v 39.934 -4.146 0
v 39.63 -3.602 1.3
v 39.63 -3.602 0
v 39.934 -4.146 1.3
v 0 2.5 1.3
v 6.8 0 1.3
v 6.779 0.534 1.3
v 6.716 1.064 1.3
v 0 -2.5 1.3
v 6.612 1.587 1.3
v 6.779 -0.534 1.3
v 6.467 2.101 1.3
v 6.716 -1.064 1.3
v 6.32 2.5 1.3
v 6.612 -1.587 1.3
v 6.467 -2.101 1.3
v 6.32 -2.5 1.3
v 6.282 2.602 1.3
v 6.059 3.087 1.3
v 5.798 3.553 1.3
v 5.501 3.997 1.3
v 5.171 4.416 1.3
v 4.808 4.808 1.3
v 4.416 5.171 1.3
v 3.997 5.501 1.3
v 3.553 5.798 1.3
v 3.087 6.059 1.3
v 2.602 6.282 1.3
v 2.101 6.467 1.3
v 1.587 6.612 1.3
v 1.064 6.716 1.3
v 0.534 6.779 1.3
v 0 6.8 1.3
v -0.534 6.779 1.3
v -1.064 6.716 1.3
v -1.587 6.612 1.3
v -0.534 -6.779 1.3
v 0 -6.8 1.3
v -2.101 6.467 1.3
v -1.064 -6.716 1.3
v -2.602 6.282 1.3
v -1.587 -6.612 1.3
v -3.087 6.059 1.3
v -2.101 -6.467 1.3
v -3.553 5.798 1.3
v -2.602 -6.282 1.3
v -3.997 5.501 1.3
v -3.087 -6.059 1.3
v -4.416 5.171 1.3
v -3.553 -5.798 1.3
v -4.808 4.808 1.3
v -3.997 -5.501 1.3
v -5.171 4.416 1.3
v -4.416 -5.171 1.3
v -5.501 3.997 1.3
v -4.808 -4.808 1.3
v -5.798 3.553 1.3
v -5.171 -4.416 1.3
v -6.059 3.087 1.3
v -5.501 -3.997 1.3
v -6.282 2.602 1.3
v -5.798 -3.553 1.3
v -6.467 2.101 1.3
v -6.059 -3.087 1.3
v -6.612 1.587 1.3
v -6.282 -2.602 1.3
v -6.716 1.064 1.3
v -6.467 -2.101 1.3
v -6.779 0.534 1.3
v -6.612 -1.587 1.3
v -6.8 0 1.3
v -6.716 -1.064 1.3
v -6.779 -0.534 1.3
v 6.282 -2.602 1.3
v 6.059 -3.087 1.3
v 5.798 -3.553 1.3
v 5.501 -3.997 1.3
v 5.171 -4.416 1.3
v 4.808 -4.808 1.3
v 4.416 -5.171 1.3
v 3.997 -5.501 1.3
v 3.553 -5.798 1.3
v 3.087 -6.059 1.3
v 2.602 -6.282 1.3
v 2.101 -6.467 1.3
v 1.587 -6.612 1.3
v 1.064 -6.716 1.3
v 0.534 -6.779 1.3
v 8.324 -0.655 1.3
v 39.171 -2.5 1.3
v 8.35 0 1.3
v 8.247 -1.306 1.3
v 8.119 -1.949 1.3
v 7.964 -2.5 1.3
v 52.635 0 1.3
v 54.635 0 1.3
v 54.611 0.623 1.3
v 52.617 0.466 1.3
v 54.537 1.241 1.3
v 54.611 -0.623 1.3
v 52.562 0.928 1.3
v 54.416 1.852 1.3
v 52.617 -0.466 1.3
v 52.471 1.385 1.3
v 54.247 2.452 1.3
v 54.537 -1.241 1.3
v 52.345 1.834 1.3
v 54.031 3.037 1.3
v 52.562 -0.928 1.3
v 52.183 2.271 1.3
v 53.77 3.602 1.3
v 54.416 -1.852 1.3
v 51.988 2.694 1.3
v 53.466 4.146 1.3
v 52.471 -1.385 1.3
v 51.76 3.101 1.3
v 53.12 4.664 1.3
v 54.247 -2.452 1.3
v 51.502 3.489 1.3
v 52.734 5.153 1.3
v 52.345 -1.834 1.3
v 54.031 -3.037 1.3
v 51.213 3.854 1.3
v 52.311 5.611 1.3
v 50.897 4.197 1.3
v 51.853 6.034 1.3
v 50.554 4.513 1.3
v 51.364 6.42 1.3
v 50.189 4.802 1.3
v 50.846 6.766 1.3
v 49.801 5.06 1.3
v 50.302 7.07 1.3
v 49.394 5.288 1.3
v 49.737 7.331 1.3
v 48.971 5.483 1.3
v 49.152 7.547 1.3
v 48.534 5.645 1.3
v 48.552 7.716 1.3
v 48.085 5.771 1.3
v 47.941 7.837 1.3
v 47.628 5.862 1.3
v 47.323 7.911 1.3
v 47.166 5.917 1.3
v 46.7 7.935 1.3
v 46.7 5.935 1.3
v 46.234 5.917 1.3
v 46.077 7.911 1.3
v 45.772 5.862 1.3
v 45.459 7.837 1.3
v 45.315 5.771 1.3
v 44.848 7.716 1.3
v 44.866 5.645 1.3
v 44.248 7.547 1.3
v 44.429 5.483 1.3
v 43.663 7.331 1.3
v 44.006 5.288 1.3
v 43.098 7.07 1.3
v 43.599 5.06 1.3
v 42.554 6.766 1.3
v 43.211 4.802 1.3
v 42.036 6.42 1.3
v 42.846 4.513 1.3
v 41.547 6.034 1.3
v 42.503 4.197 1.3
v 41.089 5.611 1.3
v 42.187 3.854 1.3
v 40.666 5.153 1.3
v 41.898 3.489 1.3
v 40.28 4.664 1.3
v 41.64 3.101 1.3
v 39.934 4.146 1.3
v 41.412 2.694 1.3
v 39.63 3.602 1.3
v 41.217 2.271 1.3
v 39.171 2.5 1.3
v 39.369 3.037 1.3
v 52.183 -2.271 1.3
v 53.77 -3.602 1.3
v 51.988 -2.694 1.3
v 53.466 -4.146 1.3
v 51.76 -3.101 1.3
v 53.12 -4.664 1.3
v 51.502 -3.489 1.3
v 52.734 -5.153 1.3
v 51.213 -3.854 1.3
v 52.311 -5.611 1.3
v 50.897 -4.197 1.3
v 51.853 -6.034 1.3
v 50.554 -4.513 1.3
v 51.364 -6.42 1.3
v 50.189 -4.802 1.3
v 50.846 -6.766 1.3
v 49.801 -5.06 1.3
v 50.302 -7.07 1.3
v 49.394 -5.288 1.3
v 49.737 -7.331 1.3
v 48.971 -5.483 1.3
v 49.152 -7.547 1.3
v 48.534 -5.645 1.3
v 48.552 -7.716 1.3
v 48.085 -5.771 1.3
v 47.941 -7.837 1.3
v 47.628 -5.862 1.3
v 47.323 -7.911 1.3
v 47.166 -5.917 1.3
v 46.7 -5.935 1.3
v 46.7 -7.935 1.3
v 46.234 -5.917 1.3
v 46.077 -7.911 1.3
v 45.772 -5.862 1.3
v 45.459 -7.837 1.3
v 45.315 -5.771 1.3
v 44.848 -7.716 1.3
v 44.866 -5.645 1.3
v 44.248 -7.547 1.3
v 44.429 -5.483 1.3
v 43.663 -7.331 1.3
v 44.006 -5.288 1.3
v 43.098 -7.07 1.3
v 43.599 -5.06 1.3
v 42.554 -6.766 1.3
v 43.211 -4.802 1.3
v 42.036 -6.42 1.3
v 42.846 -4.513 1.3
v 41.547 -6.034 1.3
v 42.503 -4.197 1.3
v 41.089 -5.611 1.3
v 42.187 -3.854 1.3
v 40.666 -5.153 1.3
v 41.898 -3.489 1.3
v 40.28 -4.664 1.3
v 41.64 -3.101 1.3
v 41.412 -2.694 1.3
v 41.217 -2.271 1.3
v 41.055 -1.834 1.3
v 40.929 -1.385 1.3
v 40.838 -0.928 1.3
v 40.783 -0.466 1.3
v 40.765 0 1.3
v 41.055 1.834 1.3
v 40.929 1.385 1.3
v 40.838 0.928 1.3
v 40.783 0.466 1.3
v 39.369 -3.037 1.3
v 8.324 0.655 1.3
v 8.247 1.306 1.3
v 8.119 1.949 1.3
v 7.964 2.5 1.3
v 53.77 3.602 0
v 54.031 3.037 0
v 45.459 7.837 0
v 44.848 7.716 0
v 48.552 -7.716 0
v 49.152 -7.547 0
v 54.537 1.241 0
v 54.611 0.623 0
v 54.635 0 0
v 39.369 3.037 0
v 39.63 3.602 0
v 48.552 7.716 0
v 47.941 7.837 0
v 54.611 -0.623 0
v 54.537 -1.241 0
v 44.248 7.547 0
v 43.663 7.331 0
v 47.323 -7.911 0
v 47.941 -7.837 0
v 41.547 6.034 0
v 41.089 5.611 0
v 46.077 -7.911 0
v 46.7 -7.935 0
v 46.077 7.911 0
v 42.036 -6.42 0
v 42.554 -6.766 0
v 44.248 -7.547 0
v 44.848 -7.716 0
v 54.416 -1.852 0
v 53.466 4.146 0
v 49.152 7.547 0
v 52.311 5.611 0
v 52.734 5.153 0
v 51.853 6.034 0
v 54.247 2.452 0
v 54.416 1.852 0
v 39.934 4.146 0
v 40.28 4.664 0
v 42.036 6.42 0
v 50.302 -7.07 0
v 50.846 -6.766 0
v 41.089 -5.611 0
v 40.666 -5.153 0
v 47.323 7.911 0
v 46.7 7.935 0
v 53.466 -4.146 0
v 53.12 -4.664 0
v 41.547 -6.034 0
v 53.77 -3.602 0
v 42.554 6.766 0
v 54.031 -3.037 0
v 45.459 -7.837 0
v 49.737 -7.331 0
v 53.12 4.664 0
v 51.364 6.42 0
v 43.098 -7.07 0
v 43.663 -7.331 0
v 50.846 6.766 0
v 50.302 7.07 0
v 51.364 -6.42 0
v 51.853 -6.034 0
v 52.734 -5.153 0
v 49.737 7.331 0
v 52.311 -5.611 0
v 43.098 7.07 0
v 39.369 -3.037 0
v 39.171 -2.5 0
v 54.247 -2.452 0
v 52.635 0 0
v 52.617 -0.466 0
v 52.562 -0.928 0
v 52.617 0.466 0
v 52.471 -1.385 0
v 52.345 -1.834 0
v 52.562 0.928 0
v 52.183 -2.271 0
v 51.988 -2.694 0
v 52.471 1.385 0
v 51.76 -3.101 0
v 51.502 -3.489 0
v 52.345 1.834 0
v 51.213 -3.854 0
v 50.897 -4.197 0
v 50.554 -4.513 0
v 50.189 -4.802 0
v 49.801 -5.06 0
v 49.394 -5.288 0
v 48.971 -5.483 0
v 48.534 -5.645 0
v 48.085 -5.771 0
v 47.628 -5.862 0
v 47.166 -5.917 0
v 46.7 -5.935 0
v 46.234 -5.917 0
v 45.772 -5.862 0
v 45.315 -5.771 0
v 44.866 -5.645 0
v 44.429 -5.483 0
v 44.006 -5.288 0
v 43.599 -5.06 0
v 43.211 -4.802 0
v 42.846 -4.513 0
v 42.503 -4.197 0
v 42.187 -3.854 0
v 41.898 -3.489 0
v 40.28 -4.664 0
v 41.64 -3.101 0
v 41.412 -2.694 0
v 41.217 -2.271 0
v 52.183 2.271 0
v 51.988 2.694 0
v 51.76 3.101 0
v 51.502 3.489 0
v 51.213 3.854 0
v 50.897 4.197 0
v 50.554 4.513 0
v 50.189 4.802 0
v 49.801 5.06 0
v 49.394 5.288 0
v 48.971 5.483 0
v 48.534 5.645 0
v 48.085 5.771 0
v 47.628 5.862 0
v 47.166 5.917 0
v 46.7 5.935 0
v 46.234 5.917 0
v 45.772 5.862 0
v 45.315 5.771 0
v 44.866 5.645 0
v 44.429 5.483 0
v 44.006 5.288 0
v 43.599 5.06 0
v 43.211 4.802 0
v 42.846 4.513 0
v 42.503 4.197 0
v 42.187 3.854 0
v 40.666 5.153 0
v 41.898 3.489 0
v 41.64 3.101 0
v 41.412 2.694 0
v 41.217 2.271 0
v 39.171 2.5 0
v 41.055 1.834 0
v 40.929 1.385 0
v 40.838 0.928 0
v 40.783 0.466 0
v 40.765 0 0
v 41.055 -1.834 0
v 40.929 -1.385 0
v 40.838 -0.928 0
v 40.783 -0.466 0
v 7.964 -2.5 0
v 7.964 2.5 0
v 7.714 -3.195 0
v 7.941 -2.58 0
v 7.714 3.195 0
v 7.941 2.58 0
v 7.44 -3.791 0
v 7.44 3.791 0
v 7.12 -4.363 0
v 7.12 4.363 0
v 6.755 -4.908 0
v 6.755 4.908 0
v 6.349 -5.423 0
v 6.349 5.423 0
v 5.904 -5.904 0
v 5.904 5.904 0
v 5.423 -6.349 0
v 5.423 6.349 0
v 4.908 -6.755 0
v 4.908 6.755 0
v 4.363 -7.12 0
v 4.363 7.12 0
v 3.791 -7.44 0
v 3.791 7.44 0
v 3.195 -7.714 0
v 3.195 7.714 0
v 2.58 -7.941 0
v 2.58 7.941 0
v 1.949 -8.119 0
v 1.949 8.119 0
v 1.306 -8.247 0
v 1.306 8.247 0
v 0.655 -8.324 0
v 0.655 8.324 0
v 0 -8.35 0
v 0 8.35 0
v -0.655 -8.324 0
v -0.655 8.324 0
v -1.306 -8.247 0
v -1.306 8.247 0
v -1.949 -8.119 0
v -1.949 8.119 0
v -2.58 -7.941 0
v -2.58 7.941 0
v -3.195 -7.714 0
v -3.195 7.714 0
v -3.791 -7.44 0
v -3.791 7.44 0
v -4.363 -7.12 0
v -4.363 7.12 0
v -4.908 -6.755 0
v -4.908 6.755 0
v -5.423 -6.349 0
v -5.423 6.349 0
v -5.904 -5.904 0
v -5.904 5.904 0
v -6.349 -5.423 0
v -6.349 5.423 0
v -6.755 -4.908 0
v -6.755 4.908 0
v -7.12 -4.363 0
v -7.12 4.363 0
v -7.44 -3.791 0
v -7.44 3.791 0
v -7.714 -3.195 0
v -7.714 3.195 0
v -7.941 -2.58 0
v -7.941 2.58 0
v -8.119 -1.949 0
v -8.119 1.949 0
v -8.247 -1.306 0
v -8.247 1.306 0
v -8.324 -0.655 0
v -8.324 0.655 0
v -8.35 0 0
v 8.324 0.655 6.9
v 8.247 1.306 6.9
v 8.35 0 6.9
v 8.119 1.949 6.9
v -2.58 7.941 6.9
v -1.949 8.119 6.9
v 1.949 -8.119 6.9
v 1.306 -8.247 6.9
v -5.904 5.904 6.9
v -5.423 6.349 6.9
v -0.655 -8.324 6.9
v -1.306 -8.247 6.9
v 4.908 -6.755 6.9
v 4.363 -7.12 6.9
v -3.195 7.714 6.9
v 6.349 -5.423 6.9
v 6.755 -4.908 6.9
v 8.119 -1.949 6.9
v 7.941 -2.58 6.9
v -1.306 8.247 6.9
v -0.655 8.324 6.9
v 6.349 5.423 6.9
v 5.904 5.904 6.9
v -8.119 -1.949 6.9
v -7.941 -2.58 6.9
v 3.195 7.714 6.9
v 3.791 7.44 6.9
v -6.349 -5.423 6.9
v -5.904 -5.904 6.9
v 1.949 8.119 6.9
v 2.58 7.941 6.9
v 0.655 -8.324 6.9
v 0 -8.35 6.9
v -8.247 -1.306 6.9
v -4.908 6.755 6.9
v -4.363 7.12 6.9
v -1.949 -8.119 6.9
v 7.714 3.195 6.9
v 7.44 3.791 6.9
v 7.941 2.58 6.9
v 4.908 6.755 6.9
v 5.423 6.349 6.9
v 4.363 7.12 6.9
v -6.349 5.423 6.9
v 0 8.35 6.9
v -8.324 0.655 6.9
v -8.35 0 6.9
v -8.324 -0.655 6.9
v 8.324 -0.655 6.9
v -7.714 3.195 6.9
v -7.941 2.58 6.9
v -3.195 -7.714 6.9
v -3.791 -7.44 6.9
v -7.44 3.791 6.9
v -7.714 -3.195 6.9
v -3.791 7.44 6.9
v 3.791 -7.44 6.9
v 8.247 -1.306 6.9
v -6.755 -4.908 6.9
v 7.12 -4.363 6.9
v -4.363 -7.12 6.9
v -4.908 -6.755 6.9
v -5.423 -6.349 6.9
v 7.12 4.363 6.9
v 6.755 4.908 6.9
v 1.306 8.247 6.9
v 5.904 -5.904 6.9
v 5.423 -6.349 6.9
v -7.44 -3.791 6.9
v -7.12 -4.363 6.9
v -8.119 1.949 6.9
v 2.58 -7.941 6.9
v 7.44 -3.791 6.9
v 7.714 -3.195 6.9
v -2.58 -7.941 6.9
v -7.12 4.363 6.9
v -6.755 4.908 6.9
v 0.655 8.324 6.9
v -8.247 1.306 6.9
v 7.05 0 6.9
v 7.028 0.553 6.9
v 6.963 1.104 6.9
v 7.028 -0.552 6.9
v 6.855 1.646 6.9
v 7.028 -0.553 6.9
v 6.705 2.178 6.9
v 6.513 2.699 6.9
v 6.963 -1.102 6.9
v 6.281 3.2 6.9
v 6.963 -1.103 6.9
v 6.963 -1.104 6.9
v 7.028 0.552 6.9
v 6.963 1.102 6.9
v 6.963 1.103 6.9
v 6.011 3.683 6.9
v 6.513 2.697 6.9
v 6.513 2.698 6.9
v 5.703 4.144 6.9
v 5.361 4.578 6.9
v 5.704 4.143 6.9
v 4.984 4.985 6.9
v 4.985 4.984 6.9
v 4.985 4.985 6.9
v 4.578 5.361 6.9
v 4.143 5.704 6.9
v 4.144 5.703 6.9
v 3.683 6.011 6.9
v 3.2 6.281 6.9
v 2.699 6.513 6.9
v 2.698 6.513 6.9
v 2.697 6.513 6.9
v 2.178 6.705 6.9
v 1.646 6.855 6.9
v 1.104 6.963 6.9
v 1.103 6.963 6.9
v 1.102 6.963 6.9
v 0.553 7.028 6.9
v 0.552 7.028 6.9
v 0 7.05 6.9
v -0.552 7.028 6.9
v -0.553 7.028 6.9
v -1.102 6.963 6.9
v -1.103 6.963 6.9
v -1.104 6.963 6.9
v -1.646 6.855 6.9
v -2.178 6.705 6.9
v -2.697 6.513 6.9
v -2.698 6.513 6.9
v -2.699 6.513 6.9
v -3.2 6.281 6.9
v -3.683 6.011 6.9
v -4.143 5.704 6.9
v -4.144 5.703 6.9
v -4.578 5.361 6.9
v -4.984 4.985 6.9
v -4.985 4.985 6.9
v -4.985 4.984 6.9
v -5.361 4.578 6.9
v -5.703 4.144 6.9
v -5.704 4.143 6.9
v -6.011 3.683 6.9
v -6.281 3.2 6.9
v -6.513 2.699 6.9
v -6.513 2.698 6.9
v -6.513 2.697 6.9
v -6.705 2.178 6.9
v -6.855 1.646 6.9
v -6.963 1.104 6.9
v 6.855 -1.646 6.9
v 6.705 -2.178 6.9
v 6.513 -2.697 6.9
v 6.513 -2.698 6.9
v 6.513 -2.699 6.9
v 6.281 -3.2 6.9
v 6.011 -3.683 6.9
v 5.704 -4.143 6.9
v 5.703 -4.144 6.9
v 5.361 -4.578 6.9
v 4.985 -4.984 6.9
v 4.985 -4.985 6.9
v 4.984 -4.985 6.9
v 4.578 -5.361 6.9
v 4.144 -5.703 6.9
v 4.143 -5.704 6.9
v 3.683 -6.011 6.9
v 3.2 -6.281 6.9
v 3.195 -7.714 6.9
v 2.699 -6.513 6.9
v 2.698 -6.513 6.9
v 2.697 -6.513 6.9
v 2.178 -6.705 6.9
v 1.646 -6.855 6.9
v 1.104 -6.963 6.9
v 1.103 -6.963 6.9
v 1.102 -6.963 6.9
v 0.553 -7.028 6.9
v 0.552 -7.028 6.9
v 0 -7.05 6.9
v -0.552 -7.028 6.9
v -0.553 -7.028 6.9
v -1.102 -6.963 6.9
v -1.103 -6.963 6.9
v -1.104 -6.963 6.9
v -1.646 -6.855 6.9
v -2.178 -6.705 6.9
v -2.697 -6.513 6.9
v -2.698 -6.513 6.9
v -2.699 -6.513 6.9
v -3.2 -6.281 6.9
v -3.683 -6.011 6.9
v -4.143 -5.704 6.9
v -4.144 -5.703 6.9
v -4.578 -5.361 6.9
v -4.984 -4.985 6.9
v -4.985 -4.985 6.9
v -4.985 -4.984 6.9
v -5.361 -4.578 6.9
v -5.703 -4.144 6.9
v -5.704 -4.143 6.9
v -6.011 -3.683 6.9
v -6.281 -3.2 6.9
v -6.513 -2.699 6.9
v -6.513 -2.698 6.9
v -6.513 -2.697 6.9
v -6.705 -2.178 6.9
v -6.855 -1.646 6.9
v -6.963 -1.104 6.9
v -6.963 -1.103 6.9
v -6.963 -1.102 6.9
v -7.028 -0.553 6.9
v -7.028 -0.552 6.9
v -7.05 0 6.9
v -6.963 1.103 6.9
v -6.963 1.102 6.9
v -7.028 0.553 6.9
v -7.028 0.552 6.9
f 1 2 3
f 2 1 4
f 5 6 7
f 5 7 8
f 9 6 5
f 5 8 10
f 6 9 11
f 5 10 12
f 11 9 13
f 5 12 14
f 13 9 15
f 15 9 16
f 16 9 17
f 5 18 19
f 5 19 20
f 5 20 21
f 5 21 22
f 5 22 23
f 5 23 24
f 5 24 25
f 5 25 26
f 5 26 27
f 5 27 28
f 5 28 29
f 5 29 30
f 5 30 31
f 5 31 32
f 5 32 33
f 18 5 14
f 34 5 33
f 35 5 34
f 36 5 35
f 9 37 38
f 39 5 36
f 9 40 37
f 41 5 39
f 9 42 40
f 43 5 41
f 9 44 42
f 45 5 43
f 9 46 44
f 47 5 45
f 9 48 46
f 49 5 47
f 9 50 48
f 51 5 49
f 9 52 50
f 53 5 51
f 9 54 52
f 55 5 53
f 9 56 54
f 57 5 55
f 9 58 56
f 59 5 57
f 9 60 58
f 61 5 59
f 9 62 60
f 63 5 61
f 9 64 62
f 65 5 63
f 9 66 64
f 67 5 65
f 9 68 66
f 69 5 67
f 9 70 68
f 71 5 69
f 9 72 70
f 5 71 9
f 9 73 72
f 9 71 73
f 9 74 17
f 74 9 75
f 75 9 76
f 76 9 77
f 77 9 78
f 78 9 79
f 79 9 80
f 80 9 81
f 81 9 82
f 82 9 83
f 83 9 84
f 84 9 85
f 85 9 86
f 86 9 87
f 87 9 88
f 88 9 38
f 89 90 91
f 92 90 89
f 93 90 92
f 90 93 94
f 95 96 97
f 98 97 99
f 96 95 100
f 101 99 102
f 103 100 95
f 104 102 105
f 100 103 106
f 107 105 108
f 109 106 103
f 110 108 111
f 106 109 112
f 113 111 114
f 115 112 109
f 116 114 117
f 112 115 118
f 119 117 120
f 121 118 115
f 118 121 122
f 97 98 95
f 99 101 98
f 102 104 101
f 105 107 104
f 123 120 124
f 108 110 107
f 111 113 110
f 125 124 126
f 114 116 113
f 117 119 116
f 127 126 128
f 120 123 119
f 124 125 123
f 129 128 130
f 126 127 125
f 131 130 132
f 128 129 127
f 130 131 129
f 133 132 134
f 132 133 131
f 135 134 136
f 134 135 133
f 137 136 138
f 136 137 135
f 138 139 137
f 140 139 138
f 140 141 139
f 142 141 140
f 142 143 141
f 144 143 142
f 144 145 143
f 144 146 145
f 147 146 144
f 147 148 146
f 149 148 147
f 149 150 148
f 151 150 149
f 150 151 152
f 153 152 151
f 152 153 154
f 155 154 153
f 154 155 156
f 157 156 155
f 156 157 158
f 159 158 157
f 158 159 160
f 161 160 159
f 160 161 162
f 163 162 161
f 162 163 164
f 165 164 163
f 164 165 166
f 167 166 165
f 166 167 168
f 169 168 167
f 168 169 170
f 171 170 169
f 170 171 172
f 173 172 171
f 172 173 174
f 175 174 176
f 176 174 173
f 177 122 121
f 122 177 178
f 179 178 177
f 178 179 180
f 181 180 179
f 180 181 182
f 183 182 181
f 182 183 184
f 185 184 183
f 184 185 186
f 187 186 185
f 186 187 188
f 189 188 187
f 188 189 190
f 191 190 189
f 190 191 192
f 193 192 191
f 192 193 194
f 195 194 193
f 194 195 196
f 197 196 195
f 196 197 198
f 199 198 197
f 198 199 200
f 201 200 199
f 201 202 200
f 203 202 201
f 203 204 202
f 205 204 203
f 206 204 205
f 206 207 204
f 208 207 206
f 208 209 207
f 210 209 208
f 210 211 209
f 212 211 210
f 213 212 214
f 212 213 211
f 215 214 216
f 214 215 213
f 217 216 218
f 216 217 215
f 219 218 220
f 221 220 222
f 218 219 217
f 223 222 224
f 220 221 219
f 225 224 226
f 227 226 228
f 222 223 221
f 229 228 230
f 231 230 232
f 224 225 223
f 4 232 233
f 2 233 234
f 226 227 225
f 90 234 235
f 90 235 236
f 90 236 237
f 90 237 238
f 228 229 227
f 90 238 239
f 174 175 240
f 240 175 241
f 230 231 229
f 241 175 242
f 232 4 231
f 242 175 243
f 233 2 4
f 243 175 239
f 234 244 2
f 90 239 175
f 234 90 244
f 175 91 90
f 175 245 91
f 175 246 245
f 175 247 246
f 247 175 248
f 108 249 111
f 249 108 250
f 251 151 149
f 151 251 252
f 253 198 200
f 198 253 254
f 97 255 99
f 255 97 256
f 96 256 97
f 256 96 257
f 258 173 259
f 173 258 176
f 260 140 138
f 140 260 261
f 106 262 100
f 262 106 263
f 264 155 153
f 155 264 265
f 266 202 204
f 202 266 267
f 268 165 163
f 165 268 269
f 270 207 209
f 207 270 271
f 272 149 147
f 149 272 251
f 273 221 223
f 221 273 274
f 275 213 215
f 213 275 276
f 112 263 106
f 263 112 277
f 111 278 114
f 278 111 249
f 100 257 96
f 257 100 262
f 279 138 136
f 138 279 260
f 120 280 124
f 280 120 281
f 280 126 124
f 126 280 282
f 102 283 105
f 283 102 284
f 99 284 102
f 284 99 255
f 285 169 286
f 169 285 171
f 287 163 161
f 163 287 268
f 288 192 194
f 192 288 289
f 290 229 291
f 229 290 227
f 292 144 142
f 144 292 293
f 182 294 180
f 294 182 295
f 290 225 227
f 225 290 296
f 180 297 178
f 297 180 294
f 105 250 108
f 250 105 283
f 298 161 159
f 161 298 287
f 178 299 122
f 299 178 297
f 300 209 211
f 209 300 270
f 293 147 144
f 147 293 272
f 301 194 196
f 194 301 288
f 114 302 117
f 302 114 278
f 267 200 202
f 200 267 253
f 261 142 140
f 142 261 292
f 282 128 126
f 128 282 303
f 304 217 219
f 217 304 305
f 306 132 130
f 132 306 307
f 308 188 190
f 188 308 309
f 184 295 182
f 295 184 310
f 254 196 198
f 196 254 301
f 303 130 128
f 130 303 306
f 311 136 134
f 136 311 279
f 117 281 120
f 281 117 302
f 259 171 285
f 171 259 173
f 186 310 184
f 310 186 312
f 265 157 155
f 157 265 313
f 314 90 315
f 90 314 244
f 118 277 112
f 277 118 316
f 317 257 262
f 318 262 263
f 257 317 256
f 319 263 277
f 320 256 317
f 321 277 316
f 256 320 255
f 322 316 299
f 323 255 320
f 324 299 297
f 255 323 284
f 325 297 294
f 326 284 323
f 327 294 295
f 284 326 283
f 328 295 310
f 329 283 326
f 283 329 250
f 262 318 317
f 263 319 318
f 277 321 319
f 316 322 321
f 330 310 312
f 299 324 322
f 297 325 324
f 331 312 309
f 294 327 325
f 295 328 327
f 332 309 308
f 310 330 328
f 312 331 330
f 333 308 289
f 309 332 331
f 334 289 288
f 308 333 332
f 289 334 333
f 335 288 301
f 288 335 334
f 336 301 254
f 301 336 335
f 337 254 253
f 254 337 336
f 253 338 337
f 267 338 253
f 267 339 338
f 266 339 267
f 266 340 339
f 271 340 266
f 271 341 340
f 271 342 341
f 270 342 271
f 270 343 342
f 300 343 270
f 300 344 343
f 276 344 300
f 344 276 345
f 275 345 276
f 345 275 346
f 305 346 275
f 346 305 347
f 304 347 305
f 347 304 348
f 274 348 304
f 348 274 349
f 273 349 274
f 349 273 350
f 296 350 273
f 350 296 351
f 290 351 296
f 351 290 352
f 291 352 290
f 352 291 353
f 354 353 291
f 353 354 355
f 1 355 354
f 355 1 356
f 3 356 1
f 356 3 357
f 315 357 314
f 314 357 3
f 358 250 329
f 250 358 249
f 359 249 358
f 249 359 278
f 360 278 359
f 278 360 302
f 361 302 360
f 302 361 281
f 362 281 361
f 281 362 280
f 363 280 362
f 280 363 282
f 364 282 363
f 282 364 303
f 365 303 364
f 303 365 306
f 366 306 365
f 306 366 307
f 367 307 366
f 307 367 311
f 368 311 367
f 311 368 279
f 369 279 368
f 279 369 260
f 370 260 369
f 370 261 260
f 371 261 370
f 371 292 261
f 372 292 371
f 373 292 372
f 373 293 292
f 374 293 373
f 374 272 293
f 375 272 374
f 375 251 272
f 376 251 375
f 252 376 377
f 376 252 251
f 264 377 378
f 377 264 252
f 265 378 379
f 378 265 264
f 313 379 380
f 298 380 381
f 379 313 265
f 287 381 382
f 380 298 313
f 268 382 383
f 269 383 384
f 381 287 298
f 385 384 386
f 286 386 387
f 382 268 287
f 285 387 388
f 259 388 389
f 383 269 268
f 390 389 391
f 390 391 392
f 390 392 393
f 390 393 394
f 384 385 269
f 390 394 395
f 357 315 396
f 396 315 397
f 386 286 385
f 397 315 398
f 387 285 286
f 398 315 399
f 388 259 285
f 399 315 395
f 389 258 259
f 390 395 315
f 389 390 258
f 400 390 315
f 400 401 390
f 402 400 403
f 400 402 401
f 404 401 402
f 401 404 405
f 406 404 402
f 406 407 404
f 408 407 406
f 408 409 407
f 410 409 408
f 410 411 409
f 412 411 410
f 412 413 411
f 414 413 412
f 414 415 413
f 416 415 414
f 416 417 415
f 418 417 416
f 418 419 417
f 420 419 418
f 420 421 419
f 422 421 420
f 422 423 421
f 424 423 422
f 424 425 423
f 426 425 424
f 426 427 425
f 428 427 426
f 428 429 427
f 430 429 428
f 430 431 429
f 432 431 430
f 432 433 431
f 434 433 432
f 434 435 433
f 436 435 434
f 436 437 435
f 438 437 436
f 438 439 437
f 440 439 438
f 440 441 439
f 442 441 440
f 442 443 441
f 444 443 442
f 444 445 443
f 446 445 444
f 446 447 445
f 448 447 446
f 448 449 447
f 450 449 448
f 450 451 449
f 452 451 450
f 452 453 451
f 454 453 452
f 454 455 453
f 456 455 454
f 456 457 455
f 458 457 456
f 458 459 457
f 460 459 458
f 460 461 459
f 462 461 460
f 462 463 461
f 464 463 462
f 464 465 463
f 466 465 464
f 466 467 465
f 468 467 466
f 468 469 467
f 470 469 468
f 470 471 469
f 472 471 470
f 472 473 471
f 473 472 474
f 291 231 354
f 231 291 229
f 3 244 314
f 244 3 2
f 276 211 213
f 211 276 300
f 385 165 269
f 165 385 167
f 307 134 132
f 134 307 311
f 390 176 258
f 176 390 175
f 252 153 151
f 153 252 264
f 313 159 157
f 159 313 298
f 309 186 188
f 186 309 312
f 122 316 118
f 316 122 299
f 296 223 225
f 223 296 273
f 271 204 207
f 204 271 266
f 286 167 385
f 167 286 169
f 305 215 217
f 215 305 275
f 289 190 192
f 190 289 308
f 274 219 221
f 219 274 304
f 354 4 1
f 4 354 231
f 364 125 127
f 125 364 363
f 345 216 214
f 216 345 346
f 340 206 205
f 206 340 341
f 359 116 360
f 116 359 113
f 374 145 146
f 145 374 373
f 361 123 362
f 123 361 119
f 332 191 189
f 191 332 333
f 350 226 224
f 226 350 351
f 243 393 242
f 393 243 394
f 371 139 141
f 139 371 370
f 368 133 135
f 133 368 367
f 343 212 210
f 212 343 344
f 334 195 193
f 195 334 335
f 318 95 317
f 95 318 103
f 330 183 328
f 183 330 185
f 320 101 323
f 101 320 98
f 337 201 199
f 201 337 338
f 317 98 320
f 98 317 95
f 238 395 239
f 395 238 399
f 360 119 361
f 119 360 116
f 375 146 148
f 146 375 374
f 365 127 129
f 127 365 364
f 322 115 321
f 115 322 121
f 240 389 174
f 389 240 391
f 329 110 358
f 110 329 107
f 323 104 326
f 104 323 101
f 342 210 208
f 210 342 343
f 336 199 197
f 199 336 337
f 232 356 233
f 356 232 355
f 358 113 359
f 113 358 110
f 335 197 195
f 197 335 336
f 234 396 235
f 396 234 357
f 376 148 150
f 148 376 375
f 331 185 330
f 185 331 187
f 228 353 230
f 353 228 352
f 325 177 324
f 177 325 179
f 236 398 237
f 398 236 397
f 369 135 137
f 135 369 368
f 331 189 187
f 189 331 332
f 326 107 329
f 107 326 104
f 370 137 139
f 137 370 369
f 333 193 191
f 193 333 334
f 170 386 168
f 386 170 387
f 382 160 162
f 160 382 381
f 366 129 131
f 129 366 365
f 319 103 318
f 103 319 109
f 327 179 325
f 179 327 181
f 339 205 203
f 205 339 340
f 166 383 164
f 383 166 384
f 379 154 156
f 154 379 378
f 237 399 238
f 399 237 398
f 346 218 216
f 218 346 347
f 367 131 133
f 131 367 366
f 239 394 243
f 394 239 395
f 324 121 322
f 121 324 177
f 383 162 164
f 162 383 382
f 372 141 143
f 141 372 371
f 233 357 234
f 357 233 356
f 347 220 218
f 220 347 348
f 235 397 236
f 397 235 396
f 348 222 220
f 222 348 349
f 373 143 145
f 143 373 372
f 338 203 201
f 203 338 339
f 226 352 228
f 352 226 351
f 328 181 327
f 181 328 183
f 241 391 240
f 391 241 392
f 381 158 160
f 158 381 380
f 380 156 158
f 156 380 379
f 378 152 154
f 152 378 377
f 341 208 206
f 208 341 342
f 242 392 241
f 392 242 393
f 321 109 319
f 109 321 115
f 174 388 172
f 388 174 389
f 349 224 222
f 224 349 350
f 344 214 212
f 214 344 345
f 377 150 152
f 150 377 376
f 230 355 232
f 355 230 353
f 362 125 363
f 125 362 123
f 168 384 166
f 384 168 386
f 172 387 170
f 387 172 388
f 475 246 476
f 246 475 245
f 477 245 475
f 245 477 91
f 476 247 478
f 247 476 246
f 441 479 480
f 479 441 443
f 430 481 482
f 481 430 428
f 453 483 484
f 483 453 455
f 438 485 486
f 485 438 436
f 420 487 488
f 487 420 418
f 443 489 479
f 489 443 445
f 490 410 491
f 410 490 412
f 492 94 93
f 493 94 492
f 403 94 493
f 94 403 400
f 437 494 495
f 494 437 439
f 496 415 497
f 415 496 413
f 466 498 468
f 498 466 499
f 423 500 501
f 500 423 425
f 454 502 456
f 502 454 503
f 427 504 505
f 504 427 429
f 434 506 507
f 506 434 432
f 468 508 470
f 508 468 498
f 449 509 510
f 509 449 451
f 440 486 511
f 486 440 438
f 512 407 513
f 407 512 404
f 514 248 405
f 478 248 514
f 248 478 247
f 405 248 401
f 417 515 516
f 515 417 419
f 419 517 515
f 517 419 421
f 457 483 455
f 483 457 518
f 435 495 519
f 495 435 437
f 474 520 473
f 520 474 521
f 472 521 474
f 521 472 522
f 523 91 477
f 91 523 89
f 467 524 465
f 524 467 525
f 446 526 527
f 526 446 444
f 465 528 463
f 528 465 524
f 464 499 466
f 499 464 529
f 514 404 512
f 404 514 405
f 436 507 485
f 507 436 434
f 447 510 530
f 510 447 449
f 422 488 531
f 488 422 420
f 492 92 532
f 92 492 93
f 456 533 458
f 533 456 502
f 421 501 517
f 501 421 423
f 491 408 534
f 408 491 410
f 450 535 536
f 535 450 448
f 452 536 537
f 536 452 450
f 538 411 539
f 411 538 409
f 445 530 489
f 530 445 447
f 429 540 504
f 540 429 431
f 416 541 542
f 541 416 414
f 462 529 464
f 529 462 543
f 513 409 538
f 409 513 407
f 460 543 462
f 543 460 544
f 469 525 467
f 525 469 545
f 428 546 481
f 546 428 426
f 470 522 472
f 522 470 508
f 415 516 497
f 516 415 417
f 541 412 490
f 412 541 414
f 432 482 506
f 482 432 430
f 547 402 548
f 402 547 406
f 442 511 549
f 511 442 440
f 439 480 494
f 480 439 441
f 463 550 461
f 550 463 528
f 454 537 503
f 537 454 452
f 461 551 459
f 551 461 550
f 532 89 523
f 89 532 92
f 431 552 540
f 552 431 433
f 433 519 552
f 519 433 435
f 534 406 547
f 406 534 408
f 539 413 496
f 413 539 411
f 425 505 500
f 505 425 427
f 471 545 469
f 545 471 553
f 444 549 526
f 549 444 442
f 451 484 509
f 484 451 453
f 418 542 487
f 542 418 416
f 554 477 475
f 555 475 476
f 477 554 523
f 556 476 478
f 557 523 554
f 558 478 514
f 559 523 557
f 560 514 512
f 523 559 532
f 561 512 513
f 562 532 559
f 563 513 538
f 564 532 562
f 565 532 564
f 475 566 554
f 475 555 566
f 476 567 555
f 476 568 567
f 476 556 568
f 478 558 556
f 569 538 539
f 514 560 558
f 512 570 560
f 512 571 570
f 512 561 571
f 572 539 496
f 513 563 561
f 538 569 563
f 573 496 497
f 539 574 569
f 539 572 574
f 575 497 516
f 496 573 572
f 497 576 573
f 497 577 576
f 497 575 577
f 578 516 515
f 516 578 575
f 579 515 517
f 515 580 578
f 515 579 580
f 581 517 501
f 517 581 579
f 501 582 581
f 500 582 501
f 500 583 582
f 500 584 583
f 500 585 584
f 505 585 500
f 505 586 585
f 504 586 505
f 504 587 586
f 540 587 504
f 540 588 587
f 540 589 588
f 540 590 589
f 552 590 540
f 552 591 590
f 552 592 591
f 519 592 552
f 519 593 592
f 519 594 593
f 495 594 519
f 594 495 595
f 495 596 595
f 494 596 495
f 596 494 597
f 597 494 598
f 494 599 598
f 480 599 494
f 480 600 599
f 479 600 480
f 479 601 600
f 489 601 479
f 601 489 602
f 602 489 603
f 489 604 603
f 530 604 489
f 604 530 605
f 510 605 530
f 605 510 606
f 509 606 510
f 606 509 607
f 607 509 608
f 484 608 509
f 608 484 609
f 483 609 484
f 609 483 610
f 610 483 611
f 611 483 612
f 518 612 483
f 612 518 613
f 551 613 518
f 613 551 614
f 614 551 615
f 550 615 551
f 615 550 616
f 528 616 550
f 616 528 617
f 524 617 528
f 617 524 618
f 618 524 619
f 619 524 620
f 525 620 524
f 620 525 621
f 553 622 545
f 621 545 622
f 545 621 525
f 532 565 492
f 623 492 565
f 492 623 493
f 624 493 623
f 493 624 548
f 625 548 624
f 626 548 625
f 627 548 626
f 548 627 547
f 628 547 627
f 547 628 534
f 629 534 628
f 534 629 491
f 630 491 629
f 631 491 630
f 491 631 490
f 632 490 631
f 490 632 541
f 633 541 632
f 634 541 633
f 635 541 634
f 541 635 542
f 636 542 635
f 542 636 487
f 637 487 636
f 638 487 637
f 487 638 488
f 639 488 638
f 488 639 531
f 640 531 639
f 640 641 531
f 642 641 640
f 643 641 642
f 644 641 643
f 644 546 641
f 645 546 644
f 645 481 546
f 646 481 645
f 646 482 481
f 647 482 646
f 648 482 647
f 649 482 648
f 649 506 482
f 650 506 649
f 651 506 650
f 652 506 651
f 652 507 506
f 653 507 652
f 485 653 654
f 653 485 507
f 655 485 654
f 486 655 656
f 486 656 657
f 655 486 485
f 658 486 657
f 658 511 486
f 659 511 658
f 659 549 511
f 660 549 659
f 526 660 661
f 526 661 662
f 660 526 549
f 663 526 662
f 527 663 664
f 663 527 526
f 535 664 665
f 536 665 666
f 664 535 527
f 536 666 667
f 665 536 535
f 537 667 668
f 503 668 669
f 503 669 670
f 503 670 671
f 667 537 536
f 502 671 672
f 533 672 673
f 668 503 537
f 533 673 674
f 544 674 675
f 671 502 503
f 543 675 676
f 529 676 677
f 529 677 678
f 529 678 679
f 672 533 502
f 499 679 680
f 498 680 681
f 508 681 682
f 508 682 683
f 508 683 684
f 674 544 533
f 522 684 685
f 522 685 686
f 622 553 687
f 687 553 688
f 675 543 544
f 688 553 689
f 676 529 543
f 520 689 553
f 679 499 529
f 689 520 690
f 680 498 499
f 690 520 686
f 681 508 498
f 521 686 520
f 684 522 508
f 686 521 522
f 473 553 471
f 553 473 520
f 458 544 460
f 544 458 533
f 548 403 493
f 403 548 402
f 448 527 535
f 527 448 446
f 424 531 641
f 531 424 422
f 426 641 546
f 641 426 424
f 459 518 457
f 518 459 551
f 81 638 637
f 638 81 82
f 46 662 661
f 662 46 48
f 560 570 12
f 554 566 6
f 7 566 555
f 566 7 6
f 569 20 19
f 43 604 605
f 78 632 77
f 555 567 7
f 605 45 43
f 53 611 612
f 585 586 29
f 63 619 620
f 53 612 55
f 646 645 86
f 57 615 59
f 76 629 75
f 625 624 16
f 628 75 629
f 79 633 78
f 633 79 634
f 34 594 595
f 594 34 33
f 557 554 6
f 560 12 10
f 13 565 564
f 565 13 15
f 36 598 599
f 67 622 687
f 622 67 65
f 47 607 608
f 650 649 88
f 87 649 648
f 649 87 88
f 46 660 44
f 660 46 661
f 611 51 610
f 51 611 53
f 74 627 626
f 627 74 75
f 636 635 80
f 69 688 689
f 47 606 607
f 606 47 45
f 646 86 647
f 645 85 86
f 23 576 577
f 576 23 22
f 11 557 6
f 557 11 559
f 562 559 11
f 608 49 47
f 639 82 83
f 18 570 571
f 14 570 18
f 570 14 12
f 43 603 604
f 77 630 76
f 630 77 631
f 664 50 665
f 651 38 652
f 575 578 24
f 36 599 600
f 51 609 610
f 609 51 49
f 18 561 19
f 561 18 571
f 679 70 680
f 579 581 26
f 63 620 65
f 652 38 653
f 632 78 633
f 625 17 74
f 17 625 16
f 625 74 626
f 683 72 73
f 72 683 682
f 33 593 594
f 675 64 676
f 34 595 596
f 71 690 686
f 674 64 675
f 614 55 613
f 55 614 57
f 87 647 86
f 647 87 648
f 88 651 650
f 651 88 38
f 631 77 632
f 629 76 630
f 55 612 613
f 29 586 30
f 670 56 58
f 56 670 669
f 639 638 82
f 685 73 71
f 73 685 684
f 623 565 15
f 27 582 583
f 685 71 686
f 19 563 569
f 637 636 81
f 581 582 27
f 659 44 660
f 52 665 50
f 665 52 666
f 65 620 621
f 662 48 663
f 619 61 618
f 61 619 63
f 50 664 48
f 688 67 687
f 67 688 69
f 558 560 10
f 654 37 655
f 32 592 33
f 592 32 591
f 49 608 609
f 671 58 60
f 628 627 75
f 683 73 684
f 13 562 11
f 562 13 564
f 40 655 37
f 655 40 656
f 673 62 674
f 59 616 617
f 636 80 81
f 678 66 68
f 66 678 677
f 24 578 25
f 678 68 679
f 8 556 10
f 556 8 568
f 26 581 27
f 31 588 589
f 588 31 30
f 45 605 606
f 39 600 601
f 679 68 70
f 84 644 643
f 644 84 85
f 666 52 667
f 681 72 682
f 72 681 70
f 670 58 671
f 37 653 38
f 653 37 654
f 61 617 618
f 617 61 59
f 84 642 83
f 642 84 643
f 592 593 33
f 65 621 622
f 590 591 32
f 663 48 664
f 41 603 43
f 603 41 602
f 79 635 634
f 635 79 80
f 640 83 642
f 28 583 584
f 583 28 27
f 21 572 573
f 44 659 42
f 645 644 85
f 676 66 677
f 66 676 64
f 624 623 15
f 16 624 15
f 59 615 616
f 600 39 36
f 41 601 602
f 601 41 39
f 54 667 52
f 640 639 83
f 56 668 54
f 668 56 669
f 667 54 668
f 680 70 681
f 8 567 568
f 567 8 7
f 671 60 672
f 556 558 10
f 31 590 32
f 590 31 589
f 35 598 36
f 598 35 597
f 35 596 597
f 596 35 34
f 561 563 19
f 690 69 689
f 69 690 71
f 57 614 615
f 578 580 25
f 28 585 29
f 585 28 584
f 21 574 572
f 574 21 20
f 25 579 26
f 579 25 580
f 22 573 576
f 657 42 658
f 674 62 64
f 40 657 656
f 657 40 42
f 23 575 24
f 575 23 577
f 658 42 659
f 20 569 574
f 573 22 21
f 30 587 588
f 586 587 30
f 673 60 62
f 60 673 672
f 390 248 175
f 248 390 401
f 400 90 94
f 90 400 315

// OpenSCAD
// Print in TPU 95A HF 15% fill

lensThreadDiameter      = 11.87;
coverLength             = 40.0;
coverInnerDiameter1     = 13.6;
coverInnerDiameter2     = coverInnerDiameter1 + 0.5;
coverHeight             = 5.6;
coverThickness          = 1.3;
coverStrapWidth         = 5.0;
coverRetainerOffsetX    = 6.7;
coverRetainerDiameter   = lensThreadDiameter + 4.0;

manifoldCorrection      = 0.01;
manifoldCorrection2     = manifoldCorrection * 2;
$fn                     = 80;


cover();


module cover()
{
    difference()
    {
        cylinder(d = coverInnerDiameter2 + coverThickness * 2, h = coverHeight + coverThickness);
        translate( [0, 0, coverThickness] )
            cylinder(d2 = coverInnerDiameter2, d1 = coverInnerDiameter1, h = coverHeight + manifoldCorrection);
    }
    
    translate( [0, -coverStrapWidth/2, 0] )
        cube( [coverLength, coverStrapWidth, coverThickness] );
        
    translate( [coverLength + coverRetainerOffsetX, 0, 0] )
        donut( coverRetainerDiameter, lensThreadDiameter, coverThickness );
    
}



module donut(outerDiameter, innerDiameter, height)
{
    difference()
    {
        cylinder(d=outerDiameter, h=height);
        translate( [0, 0, -manifoldCorrection] )
            cylinder(d=innerDiameter, h=height + manifoldCorrection * 2);
    }
}
